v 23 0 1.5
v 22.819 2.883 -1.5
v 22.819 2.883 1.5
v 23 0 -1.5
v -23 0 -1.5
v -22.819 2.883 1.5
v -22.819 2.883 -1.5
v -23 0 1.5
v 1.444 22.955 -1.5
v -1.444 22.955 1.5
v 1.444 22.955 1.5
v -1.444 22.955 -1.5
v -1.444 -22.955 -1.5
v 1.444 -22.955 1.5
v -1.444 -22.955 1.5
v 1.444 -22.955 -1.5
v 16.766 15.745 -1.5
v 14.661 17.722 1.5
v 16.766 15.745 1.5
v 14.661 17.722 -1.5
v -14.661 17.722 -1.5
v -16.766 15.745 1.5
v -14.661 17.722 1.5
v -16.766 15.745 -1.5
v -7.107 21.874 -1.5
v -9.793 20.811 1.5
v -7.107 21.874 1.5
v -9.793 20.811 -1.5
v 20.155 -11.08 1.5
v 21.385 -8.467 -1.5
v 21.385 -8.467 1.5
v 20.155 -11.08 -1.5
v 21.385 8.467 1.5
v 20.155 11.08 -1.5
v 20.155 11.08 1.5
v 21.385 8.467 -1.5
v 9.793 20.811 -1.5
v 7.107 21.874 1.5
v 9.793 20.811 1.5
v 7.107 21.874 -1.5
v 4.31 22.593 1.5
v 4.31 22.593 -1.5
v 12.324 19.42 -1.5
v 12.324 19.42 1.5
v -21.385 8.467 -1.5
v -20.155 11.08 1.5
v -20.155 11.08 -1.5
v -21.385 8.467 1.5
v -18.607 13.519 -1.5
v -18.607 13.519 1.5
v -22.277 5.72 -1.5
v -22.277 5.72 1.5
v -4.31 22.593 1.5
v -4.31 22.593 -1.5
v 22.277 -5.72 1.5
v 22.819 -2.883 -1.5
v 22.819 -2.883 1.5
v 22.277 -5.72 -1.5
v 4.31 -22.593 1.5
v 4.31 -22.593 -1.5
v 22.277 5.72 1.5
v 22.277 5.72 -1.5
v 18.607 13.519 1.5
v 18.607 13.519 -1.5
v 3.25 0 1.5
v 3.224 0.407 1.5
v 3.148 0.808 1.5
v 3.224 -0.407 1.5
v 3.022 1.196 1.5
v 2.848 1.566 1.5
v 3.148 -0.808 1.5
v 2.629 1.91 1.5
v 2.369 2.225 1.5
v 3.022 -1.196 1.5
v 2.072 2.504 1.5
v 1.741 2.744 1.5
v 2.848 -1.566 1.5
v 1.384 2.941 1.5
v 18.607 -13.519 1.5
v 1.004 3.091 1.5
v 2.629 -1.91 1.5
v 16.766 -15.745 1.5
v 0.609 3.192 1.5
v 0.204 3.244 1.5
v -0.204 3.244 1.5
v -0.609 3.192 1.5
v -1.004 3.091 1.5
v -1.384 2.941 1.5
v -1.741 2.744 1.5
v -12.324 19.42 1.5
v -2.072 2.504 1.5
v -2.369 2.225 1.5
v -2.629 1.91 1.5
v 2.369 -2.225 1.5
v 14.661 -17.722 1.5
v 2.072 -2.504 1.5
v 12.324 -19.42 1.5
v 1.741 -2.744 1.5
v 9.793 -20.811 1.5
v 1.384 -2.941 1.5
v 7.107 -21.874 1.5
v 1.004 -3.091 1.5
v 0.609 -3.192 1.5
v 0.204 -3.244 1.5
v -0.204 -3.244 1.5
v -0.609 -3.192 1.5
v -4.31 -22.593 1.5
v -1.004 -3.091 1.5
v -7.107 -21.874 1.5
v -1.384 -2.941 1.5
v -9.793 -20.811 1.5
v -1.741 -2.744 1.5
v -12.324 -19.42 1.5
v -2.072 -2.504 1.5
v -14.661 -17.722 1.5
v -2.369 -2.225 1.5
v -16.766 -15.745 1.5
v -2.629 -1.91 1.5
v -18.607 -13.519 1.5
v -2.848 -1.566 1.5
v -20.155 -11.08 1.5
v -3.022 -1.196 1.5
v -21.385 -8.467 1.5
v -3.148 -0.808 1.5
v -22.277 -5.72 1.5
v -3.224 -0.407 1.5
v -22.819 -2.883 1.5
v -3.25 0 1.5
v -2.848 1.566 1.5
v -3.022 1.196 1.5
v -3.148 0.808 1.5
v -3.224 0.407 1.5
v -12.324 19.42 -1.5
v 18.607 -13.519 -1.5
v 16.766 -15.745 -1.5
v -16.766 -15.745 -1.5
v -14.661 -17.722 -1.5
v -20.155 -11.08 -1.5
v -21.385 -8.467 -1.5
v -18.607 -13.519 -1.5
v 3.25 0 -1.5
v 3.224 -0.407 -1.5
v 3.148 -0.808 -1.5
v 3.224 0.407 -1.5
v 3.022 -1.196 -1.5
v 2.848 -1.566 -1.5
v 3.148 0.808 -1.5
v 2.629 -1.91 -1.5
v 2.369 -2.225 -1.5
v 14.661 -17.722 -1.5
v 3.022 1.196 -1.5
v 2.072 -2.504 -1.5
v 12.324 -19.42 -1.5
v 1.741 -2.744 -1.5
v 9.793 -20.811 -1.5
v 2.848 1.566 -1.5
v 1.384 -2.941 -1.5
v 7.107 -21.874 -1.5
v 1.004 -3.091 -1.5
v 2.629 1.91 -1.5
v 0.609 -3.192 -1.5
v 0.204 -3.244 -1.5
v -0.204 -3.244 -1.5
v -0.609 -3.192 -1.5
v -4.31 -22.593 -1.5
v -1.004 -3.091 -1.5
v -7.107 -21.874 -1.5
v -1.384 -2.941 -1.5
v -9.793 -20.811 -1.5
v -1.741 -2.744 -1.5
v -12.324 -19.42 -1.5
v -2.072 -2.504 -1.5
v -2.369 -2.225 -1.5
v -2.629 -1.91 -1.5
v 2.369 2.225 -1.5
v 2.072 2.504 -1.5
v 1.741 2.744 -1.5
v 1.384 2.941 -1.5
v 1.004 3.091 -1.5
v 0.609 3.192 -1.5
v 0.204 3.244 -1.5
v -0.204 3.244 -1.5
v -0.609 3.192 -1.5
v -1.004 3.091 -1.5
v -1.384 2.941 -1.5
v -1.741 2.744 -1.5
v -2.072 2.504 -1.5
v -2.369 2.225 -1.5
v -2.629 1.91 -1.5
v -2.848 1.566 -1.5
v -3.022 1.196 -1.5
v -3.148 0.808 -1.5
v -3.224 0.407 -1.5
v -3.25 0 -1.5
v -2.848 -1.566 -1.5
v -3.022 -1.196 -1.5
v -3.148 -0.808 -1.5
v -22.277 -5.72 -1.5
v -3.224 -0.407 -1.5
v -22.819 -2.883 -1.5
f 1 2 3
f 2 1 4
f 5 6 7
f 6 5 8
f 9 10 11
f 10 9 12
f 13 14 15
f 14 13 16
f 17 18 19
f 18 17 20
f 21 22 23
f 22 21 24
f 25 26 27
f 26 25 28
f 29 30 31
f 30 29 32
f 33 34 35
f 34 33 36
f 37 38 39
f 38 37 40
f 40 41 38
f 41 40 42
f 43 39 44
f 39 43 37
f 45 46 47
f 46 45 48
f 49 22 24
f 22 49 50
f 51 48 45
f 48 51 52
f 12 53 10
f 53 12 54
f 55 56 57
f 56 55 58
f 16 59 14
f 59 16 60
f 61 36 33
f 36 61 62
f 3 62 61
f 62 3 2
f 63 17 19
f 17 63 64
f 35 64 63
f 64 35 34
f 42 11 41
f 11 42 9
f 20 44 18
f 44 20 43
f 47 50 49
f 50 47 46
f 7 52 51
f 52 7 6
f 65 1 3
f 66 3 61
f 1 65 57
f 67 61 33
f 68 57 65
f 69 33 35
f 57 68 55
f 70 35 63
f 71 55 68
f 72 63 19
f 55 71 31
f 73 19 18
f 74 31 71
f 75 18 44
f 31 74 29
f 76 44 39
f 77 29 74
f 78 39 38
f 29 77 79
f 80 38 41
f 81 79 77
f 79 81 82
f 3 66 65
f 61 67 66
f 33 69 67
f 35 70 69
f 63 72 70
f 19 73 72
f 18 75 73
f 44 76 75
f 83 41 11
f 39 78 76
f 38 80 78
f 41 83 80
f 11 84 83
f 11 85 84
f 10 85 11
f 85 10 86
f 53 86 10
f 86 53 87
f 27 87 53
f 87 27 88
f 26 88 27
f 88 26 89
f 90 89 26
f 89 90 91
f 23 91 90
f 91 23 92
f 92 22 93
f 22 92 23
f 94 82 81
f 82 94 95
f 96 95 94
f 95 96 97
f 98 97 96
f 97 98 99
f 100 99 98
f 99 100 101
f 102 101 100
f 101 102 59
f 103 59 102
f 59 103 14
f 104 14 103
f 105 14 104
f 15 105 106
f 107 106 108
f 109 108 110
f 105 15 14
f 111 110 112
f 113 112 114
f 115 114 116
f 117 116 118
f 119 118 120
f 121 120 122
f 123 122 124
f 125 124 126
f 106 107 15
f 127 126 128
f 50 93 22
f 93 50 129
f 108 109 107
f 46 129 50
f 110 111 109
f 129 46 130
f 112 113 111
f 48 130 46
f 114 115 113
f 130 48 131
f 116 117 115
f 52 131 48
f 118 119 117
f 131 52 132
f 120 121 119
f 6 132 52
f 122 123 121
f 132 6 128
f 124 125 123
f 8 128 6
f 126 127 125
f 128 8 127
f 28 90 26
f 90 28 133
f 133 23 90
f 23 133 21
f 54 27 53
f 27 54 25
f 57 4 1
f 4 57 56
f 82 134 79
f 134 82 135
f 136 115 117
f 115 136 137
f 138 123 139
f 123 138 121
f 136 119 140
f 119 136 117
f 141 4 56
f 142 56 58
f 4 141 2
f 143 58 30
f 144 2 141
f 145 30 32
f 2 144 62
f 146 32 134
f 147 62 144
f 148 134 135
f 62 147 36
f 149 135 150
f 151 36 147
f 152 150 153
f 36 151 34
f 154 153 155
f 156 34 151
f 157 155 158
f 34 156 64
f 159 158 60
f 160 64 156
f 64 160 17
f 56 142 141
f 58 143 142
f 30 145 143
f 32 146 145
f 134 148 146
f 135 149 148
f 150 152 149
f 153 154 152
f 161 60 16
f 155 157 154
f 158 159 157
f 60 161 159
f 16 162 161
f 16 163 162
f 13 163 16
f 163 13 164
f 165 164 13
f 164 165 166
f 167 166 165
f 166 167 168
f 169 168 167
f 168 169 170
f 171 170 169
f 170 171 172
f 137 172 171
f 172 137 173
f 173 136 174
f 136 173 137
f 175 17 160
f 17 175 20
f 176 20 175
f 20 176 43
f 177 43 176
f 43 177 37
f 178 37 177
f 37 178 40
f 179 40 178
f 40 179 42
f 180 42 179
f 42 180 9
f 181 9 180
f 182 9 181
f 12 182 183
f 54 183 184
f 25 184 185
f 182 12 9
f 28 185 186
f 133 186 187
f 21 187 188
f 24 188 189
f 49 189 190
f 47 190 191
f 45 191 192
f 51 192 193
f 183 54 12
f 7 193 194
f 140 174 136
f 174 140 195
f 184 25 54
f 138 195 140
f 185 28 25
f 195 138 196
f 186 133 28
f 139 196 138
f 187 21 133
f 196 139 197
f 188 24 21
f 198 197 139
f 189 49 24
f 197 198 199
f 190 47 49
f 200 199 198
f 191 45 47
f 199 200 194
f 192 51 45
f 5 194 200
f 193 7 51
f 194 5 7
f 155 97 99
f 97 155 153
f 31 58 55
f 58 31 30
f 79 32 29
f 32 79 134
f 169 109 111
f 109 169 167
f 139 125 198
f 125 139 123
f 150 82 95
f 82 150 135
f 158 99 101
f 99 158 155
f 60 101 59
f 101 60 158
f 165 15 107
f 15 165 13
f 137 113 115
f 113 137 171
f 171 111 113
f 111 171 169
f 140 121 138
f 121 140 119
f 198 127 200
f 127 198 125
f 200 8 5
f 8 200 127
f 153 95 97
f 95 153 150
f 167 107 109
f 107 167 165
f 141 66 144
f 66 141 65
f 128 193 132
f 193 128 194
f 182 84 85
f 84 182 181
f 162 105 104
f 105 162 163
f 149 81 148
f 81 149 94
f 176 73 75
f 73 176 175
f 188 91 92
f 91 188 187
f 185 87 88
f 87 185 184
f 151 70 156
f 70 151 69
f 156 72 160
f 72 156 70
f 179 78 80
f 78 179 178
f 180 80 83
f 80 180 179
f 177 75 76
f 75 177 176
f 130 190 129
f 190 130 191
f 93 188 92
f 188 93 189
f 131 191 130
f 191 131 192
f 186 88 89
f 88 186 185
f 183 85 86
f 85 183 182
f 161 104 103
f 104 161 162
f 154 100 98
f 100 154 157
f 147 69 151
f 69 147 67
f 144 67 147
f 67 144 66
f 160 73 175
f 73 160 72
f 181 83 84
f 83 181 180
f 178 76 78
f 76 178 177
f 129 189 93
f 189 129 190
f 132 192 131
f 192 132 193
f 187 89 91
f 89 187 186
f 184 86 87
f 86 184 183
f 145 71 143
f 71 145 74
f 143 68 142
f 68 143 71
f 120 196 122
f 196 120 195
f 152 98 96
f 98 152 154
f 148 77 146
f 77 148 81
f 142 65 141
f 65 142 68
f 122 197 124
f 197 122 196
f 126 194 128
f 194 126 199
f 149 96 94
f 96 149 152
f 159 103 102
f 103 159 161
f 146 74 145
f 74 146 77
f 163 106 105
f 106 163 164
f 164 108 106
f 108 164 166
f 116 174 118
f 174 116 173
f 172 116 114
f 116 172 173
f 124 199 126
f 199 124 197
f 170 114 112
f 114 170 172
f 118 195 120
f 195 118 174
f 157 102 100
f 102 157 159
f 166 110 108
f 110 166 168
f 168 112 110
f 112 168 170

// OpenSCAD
$fn = 50;


difference() {
	union() {
		translate(v = [0, 0, -1.5000000000]) {
			cylinder(h = 3, r = 23.0000000000);
		}
	}
	union() {
		translate(v = [0, 0, -100.0000000000]) {
			cylinder(h = 200, r = 3.2500000000);
		}
	}
}
